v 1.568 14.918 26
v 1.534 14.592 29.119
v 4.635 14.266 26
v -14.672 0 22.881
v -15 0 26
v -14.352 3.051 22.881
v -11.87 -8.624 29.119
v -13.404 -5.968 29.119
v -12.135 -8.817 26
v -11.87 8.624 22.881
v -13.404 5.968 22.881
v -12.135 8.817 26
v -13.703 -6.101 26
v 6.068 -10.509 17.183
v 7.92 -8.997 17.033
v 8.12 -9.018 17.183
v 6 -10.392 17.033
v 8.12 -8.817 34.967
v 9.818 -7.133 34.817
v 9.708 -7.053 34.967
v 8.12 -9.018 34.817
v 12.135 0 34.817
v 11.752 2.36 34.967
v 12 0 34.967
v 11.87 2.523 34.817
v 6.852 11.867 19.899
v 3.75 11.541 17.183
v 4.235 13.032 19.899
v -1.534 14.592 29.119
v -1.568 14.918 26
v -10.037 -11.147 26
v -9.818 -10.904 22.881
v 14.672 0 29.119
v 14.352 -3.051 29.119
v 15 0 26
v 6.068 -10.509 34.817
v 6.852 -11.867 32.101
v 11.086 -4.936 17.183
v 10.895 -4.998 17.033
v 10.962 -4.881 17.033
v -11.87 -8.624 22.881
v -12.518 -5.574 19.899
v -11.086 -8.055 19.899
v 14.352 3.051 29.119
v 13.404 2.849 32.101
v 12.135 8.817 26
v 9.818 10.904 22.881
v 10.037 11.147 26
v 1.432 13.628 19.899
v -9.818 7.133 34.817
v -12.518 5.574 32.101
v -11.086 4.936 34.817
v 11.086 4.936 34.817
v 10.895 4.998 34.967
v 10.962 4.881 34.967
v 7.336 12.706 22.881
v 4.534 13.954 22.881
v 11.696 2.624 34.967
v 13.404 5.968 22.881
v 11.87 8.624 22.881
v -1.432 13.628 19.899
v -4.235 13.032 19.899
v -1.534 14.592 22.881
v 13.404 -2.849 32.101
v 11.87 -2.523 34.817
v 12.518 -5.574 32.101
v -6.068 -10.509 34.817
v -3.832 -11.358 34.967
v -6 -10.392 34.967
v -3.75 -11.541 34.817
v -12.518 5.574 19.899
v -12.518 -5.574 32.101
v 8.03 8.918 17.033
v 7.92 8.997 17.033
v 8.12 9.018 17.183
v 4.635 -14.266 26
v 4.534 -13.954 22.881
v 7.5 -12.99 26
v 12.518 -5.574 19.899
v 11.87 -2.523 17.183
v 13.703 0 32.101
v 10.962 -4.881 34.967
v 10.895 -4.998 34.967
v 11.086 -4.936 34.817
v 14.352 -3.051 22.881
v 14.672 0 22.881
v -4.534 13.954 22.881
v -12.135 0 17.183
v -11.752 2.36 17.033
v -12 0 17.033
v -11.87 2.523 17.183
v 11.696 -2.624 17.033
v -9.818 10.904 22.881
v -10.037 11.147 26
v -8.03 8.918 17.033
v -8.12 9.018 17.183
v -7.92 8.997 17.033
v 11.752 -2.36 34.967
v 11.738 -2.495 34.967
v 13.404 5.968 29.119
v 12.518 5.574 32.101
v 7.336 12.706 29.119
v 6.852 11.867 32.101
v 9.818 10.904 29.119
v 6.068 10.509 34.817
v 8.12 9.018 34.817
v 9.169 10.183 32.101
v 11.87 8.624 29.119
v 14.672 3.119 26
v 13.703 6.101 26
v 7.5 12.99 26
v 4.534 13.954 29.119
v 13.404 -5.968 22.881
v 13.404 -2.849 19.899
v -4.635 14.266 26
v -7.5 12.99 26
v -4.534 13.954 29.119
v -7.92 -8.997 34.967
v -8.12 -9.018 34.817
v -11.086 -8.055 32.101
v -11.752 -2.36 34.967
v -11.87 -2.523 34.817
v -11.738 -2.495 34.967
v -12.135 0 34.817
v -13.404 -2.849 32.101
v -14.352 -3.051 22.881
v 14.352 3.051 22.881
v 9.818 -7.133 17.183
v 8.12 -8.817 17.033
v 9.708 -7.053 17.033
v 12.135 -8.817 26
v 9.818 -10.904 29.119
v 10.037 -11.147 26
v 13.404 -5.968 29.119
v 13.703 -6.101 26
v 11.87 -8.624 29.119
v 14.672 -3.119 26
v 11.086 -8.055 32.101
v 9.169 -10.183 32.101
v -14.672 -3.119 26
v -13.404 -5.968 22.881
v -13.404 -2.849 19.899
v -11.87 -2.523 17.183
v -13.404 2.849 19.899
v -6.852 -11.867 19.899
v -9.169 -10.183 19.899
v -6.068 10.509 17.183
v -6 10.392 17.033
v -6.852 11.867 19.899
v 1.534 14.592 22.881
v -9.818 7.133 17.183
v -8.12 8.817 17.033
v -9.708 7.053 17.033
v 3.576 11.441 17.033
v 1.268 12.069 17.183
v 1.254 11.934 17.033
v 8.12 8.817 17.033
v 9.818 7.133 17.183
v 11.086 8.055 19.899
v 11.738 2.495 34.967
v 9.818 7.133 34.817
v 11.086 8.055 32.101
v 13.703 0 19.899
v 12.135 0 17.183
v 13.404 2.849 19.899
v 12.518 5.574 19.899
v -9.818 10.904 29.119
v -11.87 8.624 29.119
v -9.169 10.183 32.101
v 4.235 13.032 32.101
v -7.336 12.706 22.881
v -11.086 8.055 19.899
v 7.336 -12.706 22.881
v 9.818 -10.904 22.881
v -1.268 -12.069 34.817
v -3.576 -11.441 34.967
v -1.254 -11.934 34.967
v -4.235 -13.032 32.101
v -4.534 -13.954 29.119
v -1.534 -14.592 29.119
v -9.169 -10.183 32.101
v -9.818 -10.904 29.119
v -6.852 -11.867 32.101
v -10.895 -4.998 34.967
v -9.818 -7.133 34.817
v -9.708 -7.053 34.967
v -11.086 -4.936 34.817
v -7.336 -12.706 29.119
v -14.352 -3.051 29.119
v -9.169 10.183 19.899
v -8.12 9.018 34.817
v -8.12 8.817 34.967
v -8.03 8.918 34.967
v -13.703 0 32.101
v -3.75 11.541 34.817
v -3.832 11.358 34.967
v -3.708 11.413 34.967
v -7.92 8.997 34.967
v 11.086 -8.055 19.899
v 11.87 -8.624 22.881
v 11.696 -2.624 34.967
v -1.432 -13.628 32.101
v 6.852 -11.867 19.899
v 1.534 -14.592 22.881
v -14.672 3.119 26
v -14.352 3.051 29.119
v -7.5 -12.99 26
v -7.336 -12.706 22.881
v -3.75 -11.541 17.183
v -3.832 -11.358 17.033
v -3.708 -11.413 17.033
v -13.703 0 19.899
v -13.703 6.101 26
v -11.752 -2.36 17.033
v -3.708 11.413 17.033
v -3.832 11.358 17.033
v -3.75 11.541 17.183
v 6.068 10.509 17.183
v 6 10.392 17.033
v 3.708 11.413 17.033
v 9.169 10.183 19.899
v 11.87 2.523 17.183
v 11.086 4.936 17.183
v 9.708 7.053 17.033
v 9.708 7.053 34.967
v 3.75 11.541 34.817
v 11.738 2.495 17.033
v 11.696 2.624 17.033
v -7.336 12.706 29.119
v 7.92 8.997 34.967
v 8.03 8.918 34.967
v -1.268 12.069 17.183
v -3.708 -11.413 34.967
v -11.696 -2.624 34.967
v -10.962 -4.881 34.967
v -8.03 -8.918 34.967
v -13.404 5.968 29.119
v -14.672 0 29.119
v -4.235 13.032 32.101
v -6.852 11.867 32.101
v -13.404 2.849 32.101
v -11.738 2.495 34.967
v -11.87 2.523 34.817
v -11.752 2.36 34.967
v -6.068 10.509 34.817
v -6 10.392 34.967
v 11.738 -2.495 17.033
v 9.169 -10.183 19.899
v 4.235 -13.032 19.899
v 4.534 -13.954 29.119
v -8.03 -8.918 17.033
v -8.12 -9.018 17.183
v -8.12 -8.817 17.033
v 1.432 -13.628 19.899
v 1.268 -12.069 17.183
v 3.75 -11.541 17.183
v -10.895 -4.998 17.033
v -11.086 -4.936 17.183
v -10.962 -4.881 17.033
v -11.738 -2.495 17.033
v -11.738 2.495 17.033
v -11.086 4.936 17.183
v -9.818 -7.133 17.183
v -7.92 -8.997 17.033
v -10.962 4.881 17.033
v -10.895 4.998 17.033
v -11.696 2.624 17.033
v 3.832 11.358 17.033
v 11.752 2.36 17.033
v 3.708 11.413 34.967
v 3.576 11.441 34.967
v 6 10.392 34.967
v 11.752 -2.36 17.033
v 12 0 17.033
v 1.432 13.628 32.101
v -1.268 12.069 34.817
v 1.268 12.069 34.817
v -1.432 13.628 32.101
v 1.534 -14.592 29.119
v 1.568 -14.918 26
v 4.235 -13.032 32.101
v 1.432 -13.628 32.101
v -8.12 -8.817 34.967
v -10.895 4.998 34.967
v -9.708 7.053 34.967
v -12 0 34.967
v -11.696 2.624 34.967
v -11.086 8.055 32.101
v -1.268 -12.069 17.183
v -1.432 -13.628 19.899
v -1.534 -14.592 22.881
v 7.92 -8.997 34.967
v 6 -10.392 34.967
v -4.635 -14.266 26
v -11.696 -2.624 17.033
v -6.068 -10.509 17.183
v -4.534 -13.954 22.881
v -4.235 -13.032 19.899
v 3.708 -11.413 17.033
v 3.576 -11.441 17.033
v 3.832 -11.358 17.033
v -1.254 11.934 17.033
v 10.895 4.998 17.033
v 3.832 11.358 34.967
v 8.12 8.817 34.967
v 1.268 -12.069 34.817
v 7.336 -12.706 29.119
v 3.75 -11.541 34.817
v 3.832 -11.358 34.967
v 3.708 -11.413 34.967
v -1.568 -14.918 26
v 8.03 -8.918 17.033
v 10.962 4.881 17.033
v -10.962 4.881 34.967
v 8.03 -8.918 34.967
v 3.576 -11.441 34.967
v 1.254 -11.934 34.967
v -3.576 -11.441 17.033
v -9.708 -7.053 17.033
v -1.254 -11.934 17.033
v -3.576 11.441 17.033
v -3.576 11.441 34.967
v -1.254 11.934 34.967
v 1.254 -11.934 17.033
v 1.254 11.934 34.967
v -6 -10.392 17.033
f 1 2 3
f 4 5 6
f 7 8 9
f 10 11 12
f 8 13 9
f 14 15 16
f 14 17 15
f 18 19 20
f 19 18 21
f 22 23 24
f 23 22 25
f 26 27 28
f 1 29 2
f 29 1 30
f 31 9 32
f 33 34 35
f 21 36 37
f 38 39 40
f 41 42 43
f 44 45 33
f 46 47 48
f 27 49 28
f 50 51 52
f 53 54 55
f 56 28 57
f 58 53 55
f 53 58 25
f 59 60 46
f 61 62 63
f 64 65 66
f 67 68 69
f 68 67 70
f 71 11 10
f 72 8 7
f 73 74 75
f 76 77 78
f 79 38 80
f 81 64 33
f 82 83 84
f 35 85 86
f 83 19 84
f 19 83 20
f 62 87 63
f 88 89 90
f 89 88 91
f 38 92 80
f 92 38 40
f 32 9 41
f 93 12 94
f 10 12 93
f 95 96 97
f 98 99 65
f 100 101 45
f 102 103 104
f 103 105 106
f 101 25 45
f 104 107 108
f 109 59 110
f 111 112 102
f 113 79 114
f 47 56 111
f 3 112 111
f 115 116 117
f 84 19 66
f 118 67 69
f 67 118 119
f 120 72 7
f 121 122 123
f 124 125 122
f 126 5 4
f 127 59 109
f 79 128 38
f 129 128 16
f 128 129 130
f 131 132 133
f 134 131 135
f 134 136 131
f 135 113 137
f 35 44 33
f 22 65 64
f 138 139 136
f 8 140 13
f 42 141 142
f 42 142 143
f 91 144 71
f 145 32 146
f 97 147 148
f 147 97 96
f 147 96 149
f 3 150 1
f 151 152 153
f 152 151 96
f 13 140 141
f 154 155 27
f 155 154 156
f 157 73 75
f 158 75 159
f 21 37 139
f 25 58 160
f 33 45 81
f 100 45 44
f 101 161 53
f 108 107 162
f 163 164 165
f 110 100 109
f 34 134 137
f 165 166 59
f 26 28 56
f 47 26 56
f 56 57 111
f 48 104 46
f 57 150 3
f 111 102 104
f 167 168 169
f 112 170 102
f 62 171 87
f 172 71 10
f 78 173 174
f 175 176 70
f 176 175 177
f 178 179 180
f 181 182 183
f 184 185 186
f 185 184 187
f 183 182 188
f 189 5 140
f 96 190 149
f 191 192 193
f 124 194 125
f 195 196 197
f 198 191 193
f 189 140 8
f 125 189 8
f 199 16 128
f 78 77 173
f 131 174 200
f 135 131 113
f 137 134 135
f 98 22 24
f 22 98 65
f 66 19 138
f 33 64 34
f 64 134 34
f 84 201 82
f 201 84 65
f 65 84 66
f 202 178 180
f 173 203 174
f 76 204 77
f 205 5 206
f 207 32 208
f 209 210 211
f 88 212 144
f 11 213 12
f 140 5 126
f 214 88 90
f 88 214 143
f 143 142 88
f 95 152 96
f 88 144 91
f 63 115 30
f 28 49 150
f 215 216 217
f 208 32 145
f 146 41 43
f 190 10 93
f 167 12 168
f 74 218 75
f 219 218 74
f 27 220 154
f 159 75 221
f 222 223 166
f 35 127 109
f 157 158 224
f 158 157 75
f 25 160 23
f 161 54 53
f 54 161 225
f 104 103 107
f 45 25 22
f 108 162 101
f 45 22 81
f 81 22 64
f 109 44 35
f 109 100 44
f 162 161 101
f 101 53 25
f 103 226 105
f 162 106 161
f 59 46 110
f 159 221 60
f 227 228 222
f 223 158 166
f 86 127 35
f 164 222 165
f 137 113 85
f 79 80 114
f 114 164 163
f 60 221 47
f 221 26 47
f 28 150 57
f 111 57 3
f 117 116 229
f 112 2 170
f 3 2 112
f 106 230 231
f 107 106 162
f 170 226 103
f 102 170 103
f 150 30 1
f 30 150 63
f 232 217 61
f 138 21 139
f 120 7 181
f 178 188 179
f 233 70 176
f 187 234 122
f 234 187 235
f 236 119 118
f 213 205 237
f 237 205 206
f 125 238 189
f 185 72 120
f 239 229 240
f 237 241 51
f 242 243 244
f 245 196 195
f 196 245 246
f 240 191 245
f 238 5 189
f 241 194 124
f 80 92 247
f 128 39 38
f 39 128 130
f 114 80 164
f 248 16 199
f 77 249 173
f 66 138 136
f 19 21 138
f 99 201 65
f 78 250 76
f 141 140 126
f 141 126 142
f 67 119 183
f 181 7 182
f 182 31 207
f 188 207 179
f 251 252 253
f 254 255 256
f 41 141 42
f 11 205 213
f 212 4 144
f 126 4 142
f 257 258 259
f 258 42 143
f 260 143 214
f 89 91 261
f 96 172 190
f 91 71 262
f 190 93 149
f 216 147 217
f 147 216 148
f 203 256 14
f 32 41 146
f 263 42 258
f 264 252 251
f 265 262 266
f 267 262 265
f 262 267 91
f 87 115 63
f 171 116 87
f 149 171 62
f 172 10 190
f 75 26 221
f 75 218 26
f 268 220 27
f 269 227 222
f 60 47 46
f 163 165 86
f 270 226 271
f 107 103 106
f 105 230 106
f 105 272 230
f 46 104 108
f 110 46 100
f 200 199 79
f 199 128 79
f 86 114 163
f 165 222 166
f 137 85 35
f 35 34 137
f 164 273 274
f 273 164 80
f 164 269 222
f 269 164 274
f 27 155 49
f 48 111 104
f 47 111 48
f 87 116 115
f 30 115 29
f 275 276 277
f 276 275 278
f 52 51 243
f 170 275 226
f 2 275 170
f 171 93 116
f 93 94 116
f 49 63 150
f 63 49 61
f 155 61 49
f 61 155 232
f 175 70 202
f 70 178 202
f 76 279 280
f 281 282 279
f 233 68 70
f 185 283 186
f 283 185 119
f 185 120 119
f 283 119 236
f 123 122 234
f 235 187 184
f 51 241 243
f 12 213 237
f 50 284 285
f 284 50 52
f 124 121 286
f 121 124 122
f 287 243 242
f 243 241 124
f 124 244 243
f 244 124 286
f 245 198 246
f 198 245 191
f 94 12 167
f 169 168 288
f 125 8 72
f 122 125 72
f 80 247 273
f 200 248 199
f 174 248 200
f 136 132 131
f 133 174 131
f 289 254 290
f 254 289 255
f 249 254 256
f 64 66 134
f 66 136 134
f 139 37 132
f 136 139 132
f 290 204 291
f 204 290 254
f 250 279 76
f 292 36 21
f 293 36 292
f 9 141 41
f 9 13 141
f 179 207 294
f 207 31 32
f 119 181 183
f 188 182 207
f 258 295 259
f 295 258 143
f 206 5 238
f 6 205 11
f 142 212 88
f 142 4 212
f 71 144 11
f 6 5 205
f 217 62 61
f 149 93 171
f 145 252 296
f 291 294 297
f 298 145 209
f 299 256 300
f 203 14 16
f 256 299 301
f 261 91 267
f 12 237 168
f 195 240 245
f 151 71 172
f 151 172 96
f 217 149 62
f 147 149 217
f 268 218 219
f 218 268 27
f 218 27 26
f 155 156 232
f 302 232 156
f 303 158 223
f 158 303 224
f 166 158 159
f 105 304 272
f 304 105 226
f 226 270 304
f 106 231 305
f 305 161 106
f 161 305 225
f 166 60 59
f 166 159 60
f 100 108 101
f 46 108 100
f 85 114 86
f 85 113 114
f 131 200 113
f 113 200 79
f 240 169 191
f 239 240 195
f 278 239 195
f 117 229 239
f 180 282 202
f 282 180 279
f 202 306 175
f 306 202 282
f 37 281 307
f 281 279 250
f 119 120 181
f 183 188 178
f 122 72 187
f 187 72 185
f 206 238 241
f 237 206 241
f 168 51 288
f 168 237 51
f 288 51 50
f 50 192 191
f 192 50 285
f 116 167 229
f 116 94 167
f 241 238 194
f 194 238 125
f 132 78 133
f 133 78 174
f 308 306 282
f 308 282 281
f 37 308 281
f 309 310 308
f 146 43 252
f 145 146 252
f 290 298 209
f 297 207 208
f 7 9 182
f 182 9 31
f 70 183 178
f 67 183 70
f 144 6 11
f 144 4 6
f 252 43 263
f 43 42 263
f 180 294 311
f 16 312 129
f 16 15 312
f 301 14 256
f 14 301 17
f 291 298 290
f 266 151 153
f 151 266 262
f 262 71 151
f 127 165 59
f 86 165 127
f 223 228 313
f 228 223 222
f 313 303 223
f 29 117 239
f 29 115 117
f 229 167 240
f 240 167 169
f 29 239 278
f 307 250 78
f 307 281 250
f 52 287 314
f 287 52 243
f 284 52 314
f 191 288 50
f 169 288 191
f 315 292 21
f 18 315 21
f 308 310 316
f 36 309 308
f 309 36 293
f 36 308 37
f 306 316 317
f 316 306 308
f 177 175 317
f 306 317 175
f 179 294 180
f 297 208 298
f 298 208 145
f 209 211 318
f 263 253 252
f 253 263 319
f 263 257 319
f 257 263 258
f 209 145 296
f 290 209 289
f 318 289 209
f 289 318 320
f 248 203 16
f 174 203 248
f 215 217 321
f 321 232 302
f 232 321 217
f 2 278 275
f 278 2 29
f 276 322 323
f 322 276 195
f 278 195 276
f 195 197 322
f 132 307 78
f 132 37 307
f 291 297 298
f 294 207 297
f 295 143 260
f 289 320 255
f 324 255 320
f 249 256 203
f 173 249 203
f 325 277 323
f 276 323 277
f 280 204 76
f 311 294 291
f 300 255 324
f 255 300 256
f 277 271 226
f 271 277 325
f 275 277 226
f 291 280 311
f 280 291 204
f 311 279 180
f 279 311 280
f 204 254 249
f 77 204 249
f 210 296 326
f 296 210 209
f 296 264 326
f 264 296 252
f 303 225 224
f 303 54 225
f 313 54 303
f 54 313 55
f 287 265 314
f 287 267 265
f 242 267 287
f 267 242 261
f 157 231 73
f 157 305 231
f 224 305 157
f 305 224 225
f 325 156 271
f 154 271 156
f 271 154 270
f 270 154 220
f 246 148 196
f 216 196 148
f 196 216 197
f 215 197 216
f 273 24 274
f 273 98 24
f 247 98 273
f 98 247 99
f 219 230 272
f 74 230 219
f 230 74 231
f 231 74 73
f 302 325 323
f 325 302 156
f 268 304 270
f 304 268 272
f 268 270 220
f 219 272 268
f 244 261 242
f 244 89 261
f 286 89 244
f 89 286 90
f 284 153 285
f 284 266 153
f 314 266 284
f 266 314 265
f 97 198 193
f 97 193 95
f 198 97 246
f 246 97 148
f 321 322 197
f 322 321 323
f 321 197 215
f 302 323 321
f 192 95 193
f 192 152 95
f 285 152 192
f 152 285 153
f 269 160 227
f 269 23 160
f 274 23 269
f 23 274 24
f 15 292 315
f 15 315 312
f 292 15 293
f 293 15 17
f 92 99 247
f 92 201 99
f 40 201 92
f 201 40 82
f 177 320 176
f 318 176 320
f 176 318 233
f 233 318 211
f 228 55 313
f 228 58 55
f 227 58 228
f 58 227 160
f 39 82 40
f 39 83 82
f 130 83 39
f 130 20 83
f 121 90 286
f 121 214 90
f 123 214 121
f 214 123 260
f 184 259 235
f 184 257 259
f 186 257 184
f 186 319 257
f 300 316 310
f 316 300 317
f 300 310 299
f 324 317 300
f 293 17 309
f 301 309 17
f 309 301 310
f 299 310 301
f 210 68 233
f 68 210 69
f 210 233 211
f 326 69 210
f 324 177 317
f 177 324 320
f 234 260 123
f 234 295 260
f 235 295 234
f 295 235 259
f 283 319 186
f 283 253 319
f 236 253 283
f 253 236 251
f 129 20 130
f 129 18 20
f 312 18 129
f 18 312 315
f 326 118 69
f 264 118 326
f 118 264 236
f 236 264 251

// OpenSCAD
// Generated by SolidPython 1.0.4 on 2020-12-22 18:11:55


difference(){
	translate(v = [0, 0, 26.0000000000]) {
		difference() {
			sphere(r = 15);
		}
	}
	/* Holes Below*/
	translate(v = [0, 0, 26.0000000000]){
		union(){
			cylinder(center = true, h = 48, r = 12);
		}
	} /* End Holes */ 
}
/***********************************************
*********      SolidPython code:      **********
************************************************
 
# ball and socket cylinders that snap fit together to protect
# wiring/tubing from chicken wire in a space efficient way
from solid import *
from solid.utils import *
import toml
import os


def tube_linkage(radius, height, wall_thickness, space_width, space_height):
    # create the main linkage body
    linkage = cylinder(radius+wall_thickness, height, center=True)
    tube = cylinder(radius, height, center=True)
    linkage = linkage - hole()(tube)

    # create the hinge on either end so ball can socket
    socket = cube([2*wall_thickness, space_width, space_height], center=True)
    socket = right(radius)(socket)  # move over wall
    socket += rotate(120)(socket) + rotate(240)(socket)
    socket = down(height/2 - space_height/2)(socket) + \
        up(height/2 - space_height/2)(socket)

    linkage = linkage - hole()(socket)

    # TODO: socket should be on both sides for increased flexibility
    # now affix the ball joint on the top
    ball = sphere(radius+wall_thickness)
    ball = ball - hole()(cylinder(radius, 4*radius, center=True))
    ball = up(height+radius/2)(ball)

    return linkage, ball


def render_object(render_object, filename):
    '''
    creates a .stl and .scad solution for the given solidpython OpenSCAD object
    PARAMETERS:
        render_object: the OpenSCAD object
        filename: a string for the file to be saved
    '''
    scad_render_to_file(render_object, filename + ".scad")
    # render with OpenSCAD
    print("Openscad is now rendering the solution..")
    os.system("start ../OpenSCAD/openscad.exe -o " +
              filename + ".stl " + filename + ".scad")


if __name__ == "__main__":
    config = toml.load("configuration.toml")
    linkage, ball = tube_linkage(**config)
    render_object(linkage, "linkage")
    render_object(ball, "ball")
 
 
************************************************/
